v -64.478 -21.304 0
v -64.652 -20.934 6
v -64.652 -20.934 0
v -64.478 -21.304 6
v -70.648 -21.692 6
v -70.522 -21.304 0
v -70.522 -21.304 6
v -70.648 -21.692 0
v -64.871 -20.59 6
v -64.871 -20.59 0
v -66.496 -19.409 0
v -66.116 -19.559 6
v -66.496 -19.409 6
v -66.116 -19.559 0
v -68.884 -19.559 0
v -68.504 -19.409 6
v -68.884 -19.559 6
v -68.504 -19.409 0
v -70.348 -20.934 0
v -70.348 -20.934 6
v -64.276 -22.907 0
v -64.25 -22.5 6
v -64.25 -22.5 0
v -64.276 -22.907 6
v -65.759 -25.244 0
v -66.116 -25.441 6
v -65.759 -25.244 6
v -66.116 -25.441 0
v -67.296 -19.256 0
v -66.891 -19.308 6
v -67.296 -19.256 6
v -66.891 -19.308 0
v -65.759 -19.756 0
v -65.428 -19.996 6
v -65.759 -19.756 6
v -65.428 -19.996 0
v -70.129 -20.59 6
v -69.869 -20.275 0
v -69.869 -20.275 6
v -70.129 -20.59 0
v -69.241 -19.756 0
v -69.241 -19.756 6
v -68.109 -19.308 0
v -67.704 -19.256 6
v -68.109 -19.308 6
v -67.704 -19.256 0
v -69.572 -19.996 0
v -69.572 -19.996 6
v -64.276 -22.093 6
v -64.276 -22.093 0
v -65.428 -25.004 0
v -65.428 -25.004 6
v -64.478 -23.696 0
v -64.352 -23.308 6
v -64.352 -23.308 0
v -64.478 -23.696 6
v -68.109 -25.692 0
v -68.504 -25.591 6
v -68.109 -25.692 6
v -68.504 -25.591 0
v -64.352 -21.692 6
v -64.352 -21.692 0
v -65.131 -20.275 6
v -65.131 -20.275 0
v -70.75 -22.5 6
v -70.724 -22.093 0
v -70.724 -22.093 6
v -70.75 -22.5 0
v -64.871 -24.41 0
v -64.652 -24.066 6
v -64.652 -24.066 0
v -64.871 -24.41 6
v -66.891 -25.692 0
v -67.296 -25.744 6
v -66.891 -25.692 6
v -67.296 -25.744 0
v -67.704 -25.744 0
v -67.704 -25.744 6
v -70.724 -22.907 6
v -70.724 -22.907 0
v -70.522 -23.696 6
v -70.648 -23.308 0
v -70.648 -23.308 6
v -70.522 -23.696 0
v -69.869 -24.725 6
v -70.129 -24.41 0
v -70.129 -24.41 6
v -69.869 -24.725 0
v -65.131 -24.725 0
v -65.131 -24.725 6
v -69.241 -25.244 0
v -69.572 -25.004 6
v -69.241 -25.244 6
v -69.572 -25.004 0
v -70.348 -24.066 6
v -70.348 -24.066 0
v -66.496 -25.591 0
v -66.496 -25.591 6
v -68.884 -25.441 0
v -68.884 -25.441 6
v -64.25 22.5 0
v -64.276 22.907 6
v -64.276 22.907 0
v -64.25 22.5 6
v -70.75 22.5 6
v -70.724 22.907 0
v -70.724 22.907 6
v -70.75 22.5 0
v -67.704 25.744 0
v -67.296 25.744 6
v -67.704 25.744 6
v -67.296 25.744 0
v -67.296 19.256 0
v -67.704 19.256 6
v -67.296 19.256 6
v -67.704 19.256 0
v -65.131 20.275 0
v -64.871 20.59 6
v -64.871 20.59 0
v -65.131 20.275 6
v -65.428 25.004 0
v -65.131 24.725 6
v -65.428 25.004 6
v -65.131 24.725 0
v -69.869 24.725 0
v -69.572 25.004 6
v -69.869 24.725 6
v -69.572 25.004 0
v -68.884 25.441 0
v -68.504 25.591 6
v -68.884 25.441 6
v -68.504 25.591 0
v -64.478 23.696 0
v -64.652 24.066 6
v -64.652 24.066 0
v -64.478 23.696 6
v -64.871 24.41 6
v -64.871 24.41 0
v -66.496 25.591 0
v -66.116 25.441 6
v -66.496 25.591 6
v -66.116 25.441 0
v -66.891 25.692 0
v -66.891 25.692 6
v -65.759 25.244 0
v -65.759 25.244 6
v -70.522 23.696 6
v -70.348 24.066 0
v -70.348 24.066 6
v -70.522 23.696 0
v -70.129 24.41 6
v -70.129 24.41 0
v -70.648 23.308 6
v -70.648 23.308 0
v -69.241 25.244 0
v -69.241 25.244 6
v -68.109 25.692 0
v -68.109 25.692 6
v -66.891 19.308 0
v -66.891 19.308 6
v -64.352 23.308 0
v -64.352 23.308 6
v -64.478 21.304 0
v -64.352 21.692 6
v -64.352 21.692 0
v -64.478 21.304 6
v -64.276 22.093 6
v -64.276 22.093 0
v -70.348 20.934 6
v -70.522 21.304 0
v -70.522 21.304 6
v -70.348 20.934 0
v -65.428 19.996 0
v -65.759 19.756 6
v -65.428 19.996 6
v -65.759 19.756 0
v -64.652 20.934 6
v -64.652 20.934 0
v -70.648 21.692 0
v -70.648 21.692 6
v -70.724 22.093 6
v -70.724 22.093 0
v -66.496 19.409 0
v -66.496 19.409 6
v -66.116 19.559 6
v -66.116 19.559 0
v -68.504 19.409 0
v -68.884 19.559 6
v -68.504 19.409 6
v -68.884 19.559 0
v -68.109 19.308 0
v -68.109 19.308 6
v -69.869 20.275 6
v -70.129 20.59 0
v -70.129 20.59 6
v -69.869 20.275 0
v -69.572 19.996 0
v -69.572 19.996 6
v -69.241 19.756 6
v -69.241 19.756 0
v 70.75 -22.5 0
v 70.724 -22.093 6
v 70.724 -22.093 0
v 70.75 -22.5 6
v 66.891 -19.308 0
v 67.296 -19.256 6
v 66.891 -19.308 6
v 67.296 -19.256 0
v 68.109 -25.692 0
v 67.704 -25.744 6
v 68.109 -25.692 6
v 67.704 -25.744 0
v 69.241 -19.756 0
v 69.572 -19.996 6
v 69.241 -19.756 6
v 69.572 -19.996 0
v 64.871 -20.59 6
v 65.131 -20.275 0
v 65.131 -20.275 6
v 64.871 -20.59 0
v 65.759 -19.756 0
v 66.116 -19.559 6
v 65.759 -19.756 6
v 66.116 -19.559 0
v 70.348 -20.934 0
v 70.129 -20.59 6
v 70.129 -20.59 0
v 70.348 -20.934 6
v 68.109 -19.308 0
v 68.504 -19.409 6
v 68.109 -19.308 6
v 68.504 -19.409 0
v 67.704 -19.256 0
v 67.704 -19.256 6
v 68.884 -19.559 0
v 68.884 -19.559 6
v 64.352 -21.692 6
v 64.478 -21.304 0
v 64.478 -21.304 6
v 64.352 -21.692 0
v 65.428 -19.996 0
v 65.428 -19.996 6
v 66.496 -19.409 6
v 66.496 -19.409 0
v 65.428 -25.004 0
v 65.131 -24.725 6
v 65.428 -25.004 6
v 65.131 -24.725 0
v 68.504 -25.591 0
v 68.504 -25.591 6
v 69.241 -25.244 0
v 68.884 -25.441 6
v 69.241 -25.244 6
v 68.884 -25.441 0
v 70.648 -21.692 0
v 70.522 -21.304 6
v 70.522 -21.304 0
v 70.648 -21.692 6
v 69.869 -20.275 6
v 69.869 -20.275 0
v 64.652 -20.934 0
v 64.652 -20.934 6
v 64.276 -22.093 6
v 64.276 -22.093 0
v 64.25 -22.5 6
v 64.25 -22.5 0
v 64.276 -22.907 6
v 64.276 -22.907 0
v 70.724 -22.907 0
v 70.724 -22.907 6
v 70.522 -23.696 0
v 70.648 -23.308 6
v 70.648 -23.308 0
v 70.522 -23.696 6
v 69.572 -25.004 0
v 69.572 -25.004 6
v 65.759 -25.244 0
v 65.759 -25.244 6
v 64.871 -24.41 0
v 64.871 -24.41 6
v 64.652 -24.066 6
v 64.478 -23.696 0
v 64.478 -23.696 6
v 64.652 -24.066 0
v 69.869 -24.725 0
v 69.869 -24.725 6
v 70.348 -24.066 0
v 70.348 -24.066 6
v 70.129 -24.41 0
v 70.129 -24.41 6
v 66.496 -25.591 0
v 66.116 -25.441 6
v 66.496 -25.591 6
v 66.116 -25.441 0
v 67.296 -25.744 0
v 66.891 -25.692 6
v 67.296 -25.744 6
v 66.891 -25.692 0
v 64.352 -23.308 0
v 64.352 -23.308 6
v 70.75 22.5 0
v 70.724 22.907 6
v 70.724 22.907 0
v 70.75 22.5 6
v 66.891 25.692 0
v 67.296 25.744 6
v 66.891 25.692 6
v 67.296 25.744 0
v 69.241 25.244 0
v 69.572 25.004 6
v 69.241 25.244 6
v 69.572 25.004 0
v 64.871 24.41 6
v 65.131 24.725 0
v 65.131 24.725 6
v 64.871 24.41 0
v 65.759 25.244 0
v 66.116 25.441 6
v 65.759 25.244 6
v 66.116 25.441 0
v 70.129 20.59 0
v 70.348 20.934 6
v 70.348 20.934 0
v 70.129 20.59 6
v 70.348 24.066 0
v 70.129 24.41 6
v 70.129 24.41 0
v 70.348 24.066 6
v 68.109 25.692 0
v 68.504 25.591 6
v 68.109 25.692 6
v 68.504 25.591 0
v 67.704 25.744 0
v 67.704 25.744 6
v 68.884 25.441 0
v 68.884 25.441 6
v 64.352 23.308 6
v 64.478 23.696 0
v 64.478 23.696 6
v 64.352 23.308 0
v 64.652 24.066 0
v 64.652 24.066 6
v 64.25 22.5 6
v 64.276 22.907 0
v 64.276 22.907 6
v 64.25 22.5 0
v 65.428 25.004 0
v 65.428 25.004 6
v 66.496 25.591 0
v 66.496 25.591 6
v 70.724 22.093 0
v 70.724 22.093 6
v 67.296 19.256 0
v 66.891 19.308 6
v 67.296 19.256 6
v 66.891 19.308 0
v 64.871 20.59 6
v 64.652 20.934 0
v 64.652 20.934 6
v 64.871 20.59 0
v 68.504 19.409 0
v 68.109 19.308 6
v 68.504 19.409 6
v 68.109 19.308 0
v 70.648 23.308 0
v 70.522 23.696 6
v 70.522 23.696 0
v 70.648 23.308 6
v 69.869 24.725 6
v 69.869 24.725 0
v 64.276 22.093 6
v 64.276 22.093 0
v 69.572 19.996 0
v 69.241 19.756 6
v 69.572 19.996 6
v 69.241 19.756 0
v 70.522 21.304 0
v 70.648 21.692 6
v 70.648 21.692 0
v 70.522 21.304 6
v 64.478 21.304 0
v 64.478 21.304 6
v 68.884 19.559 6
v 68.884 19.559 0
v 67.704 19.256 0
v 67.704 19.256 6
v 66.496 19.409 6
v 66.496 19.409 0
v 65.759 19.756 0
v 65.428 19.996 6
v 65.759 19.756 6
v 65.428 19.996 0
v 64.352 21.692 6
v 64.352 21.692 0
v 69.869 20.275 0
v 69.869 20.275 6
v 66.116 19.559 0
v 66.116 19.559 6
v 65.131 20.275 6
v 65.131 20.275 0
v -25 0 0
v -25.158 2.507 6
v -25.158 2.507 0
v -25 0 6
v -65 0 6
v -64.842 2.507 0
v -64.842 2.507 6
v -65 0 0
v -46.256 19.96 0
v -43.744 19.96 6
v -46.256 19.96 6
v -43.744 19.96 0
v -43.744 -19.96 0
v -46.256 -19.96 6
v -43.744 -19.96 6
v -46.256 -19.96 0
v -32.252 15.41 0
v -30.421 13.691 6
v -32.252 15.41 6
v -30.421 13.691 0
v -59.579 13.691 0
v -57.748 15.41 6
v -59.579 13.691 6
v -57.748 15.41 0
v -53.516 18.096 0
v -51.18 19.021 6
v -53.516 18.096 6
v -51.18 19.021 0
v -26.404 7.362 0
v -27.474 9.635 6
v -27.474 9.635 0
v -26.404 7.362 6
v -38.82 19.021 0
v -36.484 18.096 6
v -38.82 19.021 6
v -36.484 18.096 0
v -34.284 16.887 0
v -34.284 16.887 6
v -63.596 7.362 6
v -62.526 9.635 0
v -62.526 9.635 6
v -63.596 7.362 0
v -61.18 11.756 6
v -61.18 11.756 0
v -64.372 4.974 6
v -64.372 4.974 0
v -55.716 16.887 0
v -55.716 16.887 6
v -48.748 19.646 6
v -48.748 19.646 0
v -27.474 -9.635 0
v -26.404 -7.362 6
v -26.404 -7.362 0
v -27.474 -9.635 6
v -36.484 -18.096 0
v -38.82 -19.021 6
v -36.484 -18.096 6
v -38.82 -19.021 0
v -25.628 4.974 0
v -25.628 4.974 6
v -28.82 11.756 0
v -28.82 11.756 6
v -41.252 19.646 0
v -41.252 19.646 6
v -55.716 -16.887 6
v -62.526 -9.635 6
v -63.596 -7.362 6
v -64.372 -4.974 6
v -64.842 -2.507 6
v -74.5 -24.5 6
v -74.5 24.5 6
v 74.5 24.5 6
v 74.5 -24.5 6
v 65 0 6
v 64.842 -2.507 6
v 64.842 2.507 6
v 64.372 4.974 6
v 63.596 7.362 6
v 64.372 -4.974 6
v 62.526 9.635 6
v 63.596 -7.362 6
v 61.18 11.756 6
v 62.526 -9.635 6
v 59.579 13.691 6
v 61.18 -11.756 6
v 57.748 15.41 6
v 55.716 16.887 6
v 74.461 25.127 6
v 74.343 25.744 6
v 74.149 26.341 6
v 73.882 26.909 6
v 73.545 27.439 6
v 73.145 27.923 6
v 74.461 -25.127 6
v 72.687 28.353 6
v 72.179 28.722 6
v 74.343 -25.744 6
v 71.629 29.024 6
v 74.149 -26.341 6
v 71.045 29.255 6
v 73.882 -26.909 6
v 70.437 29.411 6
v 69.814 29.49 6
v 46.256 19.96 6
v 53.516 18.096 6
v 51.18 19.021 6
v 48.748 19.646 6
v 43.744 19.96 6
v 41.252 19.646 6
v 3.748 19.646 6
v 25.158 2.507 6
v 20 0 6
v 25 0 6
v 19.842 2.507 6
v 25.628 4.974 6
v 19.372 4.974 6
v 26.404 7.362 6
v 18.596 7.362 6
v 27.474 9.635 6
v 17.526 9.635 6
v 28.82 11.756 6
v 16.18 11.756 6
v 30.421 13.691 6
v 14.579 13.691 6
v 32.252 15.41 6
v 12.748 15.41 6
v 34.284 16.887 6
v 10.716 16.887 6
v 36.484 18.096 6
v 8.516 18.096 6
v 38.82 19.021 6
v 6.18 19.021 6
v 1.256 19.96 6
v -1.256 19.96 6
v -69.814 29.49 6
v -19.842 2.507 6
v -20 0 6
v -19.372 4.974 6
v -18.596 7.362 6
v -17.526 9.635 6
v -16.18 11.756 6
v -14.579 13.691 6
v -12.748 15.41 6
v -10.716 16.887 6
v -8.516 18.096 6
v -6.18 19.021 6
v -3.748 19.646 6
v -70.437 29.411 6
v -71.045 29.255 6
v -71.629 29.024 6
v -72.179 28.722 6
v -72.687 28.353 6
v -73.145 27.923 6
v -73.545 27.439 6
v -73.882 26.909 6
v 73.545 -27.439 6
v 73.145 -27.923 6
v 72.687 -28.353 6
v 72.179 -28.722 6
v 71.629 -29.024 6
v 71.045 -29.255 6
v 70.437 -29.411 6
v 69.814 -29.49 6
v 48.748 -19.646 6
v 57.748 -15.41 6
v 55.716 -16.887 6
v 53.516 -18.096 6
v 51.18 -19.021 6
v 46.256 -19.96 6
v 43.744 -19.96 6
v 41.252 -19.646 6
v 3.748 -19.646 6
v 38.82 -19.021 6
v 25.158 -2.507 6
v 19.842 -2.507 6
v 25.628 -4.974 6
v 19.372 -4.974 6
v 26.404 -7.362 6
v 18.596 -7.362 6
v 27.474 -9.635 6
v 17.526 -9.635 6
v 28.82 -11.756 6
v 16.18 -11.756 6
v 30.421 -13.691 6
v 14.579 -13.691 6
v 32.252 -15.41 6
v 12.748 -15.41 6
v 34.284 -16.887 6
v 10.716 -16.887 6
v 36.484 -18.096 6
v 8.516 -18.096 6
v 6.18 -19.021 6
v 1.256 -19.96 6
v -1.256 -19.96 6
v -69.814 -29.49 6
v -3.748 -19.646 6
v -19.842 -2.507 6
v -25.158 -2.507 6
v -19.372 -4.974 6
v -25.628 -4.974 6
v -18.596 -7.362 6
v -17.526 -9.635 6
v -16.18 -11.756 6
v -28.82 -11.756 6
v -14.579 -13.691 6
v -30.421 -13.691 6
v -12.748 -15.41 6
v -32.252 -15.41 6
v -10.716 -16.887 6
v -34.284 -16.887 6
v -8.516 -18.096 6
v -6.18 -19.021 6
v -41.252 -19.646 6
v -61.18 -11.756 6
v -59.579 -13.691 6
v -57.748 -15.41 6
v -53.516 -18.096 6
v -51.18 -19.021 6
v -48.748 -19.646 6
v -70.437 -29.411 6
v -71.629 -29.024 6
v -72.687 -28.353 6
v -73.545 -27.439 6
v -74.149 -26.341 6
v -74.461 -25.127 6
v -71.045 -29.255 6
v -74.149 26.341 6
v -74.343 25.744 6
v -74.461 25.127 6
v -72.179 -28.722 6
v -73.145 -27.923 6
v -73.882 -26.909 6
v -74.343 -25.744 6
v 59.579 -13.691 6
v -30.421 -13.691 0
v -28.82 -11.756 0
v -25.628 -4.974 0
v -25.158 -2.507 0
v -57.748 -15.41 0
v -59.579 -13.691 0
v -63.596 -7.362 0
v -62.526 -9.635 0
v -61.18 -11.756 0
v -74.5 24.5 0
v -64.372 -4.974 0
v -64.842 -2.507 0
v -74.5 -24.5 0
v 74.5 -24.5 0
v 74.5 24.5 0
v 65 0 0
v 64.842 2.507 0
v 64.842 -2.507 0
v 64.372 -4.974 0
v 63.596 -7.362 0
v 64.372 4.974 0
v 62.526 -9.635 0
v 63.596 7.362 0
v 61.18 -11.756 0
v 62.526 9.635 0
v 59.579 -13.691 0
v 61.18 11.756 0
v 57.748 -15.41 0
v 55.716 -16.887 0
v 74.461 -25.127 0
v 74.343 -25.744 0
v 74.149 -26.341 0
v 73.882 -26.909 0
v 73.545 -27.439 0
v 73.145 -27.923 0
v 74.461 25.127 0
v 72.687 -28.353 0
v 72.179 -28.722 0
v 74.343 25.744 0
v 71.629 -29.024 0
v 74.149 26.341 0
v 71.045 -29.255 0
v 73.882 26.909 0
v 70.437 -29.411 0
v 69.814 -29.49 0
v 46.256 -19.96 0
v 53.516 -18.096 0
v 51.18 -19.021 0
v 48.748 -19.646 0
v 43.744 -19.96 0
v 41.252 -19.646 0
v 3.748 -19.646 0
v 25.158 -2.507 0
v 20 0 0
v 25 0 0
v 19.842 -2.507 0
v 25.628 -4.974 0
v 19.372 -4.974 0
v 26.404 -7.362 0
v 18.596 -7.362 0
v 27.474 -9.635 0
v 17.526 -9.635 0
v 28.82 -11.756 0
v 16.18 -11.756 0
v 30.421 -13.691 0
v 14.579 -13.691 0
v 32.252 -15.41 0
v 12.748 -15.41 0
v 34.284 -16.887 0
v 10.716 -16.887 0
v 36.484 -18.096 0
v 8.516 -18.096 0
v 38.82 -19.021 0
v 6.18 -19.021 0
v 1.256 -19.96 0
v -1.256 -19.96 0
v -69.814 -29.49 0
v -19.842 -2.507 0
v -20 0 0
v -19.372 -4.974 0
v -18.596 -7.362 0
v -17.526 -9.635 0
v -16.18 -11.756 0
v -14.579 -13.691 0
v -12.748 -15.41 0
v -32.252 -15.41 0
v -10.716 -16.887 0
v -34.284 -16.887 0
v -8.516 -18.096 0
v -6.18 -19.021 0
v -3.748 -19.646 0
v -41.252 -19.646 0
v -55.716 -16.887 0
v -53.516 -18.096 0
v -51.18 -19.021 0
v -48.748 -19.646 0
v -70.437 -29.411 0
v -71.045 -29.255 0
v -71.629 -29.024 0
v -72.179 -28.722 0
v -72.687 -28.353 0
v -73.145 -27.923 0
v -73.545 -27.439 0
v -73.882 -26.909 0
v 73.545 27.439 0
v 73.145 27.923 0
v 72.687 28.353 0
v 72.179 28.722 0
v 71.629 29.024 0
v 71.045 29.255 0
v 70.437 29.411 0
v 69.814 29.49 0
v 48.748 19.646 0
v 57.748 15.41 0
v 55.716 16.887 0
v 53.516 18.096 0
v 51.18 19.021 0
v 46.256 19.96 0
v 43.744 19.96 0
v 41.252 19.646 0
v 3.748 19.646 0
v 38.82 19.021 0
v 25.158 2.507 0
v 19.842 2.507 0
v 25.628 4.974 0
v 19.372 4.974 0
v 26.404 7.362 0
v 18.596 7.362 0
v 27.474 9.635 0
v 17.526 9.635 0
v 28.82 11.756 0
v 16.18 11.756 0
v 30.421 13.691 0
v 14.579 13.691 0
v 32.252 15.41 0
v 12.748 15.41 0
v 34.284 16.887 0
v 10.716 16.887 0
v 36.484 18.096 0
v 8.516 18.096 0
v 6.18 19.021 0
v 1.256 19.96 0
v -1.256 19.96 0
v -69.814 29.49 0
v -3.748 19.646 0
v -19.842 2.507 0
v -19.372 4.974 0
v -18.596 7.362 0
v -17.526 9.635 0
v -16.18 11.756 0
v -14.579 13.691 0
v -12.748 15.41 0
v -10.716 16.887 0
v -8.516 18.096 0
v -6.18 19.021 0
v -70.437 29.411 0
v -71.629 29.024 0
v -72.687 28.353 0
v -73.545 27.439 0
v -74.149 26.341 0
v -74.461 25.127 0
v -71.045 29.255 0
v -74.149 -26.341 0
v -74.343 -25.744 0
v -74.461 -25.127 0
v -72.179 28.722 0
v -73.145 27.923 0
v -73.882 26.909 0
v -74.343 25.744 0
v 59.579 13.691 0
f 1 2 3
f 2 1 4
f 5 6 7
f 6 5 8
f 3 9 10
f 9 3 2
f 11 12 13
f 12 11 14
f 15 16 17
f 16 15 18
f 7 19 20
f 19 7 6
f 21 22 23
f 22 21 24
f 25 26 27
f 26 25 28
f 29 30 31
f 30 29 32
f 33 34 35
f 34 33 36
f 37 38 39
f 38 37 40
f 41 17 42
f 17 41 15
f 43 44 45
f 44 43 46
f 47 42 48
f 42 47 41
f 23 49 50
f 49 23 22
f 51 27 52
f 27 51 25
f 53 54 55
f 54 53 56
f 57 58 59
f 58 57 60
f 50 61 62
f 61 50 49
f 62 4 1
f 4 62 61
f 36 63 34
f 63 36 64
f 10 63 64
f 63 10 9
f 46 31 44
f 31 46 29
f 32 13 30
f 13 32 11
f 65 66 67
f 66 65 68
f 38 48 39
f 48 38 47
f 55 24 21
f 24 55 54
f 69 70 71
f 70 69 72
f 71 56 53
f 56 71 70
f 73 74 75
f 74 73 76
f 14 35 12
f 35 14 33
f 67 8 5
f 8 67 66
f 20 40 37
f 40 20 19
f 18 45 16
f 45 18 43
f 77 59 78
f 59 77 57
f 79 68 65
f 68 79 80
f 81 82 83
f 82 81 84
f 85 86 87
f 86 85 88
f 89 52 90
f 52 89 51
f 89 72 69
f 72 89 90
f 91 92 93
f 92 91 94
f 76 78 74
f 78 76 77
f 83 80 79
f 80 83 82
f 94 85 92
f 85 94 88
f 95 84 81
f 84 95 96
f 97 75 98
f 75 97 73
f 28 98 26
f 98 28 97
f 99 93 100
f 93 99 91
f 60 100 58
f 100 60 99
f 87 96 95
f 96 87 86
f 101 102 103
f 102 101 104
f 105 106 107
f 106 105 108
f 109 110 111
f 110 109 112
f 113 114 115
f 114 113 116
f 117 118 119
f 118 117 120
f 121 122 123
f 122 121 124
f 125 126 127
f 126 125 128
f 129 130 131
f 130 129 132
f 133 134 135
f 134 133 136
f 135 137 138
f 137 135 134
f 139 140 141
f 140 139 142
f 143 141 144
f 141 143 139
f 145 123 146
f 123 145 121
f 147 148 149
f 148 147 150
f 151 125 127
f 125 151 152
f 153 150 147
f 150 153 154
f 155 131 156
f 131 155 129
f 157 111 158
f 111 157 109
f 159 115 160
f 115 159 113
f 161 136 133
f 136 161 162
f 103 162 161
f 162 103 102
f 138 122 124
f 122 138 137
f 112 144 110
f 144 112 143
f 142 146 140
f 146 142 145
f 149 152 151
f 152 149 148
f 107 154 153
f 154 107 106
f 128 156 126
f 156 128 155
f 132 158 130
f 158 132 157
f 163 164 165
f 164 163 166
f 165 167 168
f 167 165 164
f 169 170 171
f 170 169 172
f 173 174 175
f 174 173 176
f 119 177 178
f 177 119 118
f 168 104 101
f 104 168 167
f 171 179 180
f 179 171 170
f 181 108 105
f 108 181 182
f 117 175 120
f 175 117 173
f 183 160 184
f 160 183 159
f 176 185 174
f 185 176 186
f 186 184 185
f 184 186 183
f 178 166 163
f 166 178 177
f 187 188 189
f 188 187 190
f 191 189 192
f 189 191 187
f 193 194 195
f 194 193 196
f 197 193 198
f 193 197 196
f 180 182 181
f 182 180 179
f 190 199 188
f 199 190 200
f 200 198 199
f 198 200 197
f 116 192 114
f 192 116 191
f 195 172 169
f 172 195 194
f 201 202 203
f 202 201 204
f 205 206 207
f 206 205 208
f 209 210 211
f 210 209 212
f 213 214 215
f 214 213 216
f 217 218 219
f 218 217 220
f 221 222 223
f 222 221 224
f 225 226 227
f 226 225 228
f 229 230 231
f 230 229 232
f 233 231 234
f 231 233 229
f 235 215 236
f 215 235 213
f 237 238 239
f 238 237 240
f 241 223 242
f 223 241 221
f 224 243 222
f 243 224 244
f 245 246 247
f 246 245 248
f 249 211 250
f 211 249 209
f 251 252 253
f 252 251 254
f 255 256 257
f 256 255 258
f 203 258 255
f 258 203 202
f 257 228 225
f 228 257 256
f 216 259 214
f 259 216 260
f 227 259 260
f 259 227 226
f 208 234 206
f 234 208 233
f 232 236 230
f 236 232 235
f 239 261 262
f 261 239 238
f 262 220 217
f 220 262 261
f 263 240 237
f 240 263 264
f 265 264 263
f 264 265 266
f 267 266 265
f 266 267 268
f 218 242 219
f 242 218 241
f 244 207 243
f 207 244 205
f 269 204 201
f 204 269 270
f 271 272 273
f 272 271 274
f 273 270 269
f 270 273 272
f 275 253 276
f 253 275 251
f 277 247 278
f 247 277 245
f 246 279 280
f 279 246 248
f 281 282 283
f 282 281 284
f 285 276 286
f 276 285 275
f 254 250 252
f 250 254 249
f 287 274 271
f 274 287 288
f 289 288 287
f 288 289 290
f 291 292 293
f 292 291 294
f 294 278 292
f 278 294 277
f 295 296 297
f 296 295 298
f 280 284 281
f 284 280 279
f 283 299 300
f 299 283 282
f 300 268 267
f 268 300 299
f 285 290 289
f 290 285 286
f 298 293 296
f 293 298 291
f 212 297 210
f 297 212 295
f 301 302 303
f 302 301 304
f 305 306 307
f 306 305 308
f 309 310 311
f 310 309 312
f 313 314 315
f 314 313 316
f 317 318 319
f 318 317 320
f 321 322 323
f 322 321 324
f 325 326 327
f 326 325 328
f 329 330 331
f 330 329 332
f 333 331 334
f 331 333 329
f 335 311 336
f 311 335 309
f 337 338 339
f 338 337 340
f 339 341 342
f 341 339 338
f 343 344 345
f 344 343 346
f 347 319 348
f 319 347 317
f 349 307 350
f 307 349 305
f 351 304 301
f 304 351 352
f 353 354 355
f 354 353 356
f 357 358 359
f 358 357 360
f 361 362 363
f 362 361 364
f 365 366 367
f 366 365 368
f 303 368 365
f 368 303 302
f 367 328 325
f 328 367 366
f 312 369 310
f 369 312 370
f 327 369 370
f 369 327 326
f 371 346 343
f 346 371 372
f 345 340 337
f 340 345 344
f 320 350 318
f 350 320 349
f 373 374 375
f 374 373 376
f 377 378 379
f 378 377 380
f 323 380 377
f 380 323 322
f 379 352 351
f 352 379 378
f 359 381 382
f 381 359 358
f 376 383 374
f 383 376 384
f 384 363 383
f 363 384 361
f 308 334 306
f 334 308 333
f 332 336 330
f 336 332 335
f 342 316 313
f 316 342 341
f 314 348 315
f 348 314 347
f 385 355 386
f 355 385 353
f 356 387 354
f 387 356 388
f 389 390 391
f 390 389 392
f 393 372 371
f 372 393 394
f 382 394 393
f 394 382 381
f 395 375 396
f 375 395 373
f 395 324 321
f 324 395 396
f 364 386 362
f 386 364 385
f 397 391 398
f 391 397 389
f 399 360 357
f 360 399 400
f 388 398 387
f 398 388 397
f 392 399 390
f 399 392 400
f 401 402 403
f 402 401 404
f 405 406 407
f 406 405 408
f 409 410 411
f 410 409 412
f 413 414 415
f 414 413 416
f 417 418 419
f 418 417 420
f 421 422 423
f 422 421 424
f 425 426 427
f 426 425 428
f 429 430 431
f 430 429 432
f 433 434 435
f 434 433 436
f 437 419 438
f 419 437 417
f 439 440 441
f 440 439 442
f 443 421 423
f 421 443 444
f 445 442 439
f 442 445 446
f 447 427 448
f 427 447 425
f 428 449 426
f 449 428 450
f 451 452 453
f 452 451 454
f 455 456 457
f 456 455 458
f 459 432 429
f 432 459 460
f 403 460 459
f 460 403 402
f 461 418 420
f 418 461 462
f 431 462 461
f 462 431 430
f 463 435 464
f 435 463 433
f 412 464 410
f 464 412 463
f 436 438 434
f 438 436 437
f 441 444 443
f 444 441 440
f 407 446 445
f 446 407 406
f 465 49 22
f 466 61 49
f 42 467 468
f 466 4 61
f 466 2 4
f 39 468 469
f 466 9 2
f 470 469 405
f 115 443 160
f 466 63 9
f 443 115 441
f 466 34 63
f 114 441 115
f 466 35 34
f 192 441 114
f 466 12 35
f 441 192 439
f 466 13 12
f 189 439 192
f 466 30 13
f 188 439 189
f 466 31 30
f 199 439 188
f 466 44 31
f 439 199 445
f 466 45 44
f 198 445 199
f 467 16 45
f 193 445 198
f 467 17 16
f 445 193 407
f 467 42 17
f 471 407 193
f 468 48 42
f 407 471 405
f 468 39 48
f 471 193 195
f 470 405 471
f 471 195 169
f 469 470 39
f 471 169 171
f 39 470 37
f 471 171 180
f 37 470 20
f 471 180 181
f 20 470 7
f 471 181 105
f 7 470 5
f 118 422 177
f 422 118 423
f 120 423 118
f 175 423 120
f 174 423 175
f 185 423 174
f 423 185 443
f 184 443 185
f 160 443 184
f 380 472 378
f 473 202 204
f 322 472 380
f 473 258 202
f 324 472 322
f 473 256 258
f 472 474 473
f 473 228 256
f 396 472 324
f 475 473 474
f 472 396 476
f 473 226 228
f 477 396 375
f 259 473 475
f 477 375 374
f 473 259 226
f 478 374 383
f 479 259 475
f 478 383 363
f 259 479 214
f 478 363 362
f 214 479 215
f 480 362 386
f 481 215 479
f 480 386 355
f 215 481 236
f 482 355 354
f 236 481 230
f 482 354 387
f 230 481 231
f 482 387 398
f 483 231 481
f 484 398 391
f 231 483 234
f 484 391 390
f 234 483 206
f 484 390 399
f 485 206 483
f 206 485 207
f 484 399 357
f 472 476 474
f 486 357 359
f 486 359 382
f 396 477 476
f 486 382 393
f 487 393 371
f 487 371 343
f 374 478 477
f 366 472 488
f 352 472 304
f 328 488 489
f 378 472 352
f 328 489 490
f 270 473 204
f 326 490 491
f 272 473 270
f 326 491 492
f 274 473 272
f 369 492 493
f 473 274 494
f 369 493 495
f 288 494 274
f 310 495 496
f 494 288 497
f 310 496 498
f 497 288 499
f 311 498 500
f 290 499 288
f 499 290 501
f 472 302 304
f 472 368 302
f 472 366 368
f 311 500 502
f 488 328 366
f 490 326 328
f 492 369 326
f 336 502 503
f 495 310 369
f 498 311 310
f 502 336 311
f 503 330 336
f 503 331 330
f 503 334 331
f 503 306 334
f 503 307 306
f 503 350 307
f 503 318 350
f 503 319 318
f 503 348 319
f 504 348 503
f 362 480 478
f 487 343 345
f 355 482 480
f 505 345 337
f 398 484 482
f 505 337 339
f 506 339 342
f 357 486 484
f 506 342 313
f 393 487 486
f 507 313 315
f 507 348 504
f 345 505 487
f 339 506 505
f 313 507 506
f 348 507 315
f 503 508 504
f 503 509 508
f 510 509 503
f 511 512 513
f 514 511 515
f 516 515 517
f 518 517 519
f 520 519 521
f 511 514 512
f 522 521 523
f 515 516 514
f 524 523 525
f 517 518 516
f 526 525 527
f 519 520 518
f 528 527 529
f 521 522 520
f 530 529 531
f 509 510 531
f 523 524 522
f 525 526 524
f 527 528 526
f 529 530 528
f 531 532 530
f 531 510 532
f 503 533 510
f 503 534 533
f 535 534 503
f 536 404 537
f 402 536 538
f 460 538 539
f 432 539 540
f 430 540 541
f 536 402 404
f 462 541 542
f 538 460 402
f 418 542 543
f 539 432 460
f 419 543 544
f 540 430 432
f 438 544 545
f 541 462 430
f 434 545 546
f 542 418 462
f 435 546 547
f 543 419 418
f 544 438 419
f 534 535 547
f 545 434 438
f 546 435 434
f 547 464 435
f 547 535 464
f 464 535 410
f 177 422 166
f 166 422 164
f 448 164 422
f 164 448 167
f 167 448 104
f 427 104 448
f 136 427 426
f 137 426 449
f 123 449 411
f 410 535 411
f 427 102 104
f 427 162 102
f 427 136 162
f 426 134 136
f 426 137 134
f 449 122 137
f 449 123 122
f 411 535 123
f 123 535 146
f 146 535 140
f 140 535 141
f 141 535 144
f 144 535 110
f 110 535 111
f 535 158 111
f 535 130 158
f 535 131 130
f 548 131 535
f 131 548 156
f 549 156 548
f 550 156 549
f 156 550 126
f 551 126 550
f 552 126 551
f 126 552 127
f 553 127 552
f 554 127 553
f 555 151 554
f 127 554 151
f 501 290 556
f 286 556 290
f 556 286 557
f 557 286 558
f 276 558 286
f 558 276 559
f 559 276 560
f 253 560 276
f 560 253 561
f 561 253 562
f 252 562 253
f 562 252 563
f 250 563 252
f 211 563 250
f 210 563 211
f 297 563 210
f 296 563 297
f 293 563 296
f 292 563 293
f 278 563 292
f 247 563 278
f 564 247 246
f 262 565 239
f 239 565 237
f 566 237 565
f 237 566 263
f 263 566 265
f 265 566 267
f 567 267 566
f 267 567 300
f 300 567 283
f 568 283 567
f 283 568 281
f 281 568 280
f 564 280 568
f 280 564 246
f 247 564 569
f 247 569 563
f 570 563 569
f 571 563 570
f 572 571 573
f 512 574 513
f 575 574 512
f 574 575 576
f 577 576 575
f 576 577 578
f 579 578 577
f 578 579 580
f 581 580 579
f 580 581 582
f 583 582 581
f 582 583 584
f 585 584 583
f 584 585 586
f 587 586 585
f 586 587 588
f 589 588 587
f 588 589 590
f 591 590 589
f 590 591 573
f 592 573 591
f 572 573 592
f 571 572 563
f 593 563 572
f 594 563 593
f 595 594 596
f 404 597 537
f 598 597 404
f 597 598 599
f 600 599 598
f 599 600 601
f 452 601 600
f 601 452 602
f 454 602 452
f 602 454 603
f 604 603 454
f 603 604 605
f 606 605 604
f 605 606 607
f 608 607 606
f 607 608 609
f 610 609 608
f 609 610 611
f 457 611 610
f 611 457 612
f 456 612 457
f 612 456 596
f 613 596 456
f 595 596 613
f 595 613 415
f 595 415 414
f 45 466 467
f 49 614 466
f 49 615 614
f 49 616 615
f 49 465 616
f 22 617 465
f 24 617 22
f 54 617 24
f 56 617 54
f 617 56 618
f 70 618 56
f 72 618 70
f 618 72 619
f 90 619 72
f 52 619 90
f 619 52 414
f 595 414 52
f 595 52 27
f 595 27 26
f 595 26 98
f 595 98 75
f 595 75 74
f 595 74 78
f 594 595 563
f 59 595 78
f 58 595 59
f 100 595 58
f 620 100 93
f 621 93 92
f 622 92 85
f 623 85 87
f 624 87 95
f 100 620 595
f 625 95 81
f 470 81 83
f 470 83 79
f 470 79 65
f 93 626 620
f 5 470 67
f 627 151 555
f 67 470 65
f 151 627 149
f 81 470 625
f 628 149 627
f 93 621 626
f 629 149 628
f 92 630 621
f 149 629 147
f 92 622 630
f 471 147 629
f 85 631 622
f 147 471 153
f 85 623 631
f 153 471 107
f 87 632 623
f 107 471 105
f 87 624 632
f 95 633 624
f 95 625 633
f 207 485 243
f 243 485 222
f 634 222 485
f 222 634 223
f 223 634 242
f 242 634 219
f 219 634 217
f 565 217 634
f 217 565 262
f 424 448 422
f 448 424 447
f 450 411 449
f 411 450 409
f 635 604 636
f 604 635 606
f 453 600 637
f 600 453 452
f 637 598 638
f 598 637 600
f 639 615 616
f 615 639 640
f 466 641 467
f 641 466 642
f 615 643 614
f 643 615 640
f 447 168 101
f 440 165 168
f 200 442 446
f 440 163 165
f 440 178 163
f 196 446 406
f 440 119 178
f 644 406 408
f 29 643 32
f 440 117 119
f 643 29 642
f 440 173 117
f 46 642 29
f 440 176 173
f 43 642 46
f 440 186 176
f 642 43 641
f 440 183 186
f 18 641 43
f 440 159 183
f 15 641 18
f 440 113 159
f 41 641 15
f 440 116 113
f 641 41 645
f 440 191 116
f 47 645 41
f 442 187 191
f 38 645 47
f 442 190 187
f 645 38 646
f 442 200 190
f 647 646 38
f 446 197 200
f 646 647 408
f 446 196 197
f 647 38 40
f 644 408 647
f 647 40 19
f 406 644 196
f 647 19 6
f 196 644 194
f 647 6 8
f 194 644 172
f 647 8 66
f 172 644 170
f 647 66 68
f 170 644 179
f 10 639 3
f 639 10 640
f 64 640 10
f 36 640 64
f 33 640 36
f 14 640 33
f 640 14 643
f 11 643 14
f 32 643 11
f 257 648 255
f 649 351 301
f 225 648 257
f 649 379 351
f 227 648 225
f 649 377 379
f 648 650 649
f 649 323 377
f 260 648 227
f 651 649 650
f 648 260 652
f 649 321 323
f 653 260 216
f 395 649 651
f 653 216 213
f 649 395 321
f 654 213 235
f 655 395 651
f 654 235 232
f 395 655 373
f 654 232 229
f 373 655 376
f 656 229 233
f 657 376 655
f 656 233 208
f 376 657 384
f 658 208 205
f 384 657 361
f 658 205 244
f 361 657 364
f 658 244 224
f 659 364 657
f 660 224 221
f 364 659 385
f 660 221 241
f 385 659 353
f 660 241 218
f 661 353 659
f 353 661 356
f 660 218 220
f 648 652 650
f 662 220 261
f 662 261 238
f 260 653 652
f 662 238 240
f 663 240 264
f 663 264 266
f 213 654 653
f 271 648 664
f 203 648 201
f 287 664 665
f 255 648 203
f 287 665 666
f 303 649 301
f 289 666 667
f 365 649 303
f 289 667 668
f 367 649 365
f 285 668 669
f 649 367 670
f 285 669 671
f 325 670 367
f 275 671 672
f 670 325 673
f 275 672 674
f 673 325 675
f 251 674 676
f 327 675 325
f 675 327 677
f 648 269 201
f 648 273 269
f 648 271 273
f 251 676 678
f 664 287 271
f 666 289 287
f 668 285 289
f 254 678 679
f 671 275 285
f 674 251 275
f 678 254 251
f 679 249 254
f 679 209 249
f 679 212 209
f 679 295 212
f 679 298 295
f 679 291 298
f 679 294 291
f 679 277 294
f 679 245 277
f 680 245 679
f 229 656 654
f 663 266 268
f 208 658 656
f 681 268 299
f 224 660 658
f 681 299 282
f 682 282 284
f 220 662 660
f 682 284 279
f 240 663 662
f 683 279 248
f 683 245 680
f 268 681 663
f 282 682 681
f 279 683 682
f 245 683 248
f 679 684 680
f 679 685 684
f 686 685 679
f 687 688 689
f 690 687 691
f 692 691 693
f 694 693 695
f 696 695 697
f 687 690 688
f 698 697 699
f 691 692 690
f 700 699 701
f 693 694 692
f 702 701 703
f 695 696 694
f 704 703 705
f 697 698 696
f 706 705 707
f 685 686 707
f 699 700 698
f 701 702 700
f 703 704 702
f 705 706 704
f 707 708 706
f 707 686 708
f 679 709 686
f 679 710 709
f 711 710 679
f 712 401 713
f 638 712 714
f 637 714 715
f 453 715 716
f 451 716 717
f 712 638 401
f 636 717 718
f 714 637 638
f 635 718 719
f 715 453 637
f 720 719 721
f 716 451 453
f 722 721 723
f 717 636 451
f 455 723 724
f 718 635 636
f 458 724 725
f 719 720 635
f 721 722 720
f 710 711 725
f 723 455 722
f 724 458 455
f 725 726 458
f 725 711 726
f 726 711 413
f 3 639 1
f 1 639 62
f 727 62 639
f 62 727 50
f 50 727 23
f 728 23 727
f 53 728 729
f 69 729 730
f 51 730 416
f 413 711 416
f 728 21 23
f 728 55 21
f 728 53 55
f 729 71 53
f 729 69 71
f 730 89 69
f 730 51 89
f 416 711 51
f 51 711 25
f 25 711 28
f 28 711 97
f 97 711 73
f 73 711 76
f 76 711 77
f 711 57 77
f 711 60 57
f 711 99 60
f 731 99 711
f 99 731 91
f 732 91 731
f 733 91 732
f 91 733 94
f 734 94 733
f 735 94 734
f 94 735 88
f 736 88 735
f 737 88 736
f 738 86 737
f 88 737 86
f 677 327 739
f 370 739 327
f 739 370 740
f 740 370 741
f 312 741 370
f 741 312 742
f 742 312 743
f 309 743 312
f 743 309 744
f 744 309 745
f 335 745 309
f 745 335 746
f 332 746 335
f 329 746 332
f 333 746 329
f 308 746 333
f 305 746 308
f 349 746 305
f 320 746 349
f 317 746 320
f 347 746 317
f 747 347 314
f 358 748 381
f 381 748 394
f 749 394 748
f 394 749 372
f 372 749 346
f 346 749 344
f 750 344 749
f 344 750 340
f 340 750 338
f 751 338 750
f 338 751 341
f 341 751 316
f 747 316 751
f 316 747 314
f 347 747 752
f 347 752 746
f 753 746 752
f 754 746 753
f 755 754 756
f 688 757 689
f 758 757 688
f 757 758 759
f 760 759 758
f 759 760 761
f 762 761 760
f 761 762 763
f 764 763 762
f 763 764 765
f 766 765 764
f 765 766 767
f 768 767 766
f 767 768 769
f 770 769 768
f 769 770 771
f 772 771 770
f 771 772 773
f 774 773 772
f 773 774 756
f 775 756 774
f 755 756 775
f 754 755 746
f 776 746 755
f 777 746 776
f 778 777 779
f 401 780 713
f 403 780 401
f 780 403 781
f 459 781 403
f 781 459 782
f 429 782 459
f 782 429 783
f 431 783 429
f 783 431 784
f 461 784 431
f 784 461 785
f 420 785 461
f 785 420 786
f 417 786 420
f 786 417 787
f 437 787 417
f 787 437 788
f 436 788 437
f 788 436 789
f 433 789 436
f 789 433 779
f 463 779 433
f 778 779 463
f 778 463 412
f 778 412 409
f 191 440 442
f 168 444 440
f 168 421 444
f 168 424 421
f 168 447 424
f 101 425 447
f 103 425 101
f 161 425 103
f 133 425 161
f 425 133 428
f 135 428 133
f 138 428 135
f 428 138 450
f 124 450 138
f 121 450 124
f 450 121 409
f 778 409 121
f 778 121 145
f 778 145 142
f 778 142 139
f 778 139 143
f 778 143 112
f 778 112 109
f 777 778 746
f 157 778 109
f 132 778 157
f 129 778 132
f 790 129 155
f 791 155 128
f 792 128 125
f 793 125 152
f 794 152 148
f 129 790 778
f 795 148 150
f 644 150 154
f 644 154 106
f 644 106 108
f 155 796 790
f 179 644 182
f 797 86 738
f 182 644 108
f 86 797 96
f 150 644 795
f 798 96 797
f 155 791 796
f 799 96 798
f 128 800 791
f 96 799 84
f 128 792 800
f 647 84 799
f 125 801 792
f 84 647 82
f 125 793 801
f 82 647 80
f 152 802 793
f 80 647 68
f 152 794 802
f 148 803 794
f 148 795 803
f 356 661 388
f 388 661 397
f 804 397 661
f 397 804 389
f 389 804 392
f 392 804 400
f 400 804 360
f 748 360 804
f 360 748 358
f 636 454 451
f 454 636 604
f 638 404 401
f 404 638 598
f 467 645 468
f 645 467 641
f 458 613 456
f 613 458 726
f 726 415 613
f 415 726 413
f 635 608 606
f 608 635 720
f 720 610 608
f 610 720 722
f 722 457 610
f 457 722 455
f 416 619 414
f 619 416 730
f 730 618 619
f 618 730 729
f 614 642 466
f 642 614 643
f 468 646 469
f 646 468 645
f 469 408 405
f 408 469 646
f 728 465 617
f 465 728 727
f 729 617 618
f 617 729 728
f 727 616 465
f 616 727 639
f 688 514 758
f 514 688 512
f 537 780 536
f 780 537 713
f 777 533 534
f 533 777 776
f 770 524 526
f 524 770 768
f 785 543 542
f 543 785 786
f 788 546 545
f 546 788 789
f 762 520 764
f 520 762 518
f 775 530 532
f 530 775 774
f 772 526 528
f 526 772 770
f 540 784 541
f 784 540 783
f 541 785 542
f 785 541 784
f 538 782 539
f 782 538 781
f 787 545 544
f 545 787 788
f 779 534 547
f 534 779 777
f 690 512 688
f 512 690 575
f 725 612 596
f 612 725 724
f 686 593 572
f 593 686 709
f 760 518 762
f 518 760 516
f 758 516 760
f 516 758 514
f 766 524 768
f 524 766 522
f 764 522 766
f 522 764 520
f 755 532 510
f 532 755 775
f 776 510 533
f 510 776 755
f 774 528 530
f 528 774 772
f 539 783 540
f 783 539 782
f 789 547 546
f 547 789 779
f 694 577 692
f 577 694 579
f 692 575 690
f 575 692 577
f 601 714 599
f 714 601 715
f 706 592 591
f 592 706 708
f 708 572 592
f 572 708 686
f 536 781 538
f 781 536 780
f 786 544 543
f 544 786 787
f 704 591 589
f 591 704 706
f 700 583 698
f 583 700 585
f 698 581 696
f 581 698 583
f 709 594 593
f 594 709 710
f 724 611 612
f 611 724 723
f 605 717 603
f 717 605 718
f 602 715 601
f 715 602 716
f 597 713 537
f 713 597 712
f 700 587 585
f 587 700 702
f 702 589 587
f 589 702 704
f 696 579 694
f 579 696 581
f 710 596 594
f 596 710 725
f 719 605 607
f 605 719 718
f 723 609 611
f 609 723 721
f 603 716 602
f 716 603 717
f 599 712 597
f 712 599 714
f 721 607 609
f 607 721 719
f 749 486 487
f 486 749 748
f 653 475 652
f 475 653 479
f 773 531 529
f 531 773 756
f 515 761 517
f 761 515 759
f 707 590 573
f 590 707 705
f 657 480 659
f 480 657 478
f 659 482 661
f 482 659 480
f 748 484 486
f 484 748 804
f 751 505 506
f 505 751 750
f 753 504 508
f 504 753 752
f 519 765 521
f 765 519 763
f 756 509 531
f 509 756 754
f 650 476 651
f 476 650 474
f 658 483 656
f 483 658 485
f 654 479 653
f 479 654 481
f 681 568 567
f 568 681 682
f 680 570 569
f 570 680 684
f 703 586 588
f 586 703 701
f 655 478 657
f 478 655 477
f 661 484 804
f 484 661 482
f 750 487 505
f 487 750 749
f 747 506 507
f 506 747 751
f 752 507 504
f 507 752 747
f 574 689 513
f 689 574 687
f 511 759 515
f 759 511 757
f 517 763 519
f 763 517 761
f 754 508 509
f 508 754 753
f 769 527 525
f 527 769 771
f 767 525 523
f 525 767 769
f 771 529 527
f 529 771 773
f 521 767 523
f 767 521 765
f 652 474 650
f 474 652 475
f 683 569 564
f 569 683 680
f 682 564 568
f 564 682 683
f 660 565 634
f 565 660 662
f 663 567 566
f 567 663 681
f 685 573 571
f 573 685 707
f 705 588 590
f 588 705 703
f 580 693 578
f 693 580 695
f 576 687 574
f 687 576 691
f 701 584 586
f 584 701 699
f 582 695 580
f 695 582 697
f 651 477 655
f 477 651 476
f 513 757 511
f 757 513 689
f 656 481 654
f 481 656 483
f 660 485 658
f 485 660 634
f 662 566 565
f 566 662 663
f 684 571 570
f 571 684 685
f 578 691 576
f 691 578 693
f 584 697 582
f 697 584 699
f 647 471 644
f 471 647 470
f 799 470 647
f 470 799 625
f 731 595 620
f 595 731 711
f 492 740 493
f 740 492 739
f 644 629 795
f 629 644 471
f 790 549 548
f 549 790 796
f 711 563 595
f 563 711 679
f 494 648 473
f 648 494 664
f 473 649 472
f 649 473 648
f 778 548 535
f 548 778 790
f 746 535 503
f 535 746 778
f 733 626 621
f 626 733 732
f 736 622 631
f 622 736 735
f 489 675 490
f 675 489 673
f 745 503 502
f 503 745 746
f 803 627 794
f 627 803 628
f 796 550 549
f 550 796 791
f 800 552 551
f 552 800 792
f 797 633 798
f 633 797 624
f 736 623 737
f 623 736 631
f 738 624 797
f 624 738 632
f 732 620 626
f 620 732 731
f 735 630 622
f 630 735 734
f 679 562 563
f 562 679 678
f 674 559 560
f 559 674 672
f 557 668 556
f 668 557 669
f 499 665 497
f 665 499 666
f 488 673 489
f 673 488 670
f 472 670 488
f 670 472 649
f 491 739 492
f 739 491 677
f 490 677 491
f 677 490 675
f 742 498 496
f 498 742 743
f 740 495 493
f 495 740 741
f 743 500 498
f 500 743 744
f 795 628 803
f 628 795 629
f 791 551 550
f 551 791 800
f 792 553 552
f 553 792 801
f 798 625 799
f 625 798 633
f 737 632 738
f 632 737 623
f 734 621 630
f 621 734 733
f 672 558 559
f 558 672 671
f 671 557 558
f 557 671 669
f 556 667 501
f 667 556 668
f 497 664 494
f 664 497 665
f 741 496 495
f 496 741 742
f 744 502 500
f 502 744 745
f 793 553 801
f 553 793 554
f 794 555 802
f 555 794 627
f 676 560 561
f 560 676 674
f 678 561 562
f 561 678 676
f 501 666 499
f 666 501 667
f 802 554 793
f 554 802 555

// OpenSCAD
$fn = 50;


difference() {
	union() {
		hull() {
			translate(v = [-69.5000000000, 24.5000000000, 0]) {
				cylinder(h = 6, r = 5);
			}
			translate(v = [69.5000000000, 24.5000000000, 0]) {
				cylinder(h = 6, r = 5);
			}
			translate(v = [-69.5000000000, -24.5000000000, 0]) {
				cylinder(h = 6, r = 5);
			}
			translate(v = [69.5000000000, -24.5000000000, 0]) {
				cylinder(h = 6, r = 5);
			}
		}
	}
	union() {
		#translate(v = [-67.5000000000, -22.5000000000, -100.0000000000]) {
			cylinder(h = 200, r = 3.2500000000);
		}
		#translate(v = [-67.5000000000, 22.5000000000, -100.0000000000]) {
			cylinder(h = 200, r = 3.2500000000);
		}
		#translate(v = [67.5000000000, -22.5000000000, -100.0000000000]) {
			cylinder(h = 200, r = 3.2500000000);
		}
		#translate(v = [67.5000000000, 22.5000000000, -100.0000000000]) {
			cylinder(h = 200, r = 3.2500000000);
		}
		#translate(v = [-45.0000000000, 0, 0]) {
			cylinder(h = 6, r = 20.0000000000);
		}
		#cylinder(h = 6, r = 20.0000000000);
		#translate(v = [45.0000000000, 0, 0]) {
			cylinder(h = 6, r = 20.0000000000);
		}
	}
}
